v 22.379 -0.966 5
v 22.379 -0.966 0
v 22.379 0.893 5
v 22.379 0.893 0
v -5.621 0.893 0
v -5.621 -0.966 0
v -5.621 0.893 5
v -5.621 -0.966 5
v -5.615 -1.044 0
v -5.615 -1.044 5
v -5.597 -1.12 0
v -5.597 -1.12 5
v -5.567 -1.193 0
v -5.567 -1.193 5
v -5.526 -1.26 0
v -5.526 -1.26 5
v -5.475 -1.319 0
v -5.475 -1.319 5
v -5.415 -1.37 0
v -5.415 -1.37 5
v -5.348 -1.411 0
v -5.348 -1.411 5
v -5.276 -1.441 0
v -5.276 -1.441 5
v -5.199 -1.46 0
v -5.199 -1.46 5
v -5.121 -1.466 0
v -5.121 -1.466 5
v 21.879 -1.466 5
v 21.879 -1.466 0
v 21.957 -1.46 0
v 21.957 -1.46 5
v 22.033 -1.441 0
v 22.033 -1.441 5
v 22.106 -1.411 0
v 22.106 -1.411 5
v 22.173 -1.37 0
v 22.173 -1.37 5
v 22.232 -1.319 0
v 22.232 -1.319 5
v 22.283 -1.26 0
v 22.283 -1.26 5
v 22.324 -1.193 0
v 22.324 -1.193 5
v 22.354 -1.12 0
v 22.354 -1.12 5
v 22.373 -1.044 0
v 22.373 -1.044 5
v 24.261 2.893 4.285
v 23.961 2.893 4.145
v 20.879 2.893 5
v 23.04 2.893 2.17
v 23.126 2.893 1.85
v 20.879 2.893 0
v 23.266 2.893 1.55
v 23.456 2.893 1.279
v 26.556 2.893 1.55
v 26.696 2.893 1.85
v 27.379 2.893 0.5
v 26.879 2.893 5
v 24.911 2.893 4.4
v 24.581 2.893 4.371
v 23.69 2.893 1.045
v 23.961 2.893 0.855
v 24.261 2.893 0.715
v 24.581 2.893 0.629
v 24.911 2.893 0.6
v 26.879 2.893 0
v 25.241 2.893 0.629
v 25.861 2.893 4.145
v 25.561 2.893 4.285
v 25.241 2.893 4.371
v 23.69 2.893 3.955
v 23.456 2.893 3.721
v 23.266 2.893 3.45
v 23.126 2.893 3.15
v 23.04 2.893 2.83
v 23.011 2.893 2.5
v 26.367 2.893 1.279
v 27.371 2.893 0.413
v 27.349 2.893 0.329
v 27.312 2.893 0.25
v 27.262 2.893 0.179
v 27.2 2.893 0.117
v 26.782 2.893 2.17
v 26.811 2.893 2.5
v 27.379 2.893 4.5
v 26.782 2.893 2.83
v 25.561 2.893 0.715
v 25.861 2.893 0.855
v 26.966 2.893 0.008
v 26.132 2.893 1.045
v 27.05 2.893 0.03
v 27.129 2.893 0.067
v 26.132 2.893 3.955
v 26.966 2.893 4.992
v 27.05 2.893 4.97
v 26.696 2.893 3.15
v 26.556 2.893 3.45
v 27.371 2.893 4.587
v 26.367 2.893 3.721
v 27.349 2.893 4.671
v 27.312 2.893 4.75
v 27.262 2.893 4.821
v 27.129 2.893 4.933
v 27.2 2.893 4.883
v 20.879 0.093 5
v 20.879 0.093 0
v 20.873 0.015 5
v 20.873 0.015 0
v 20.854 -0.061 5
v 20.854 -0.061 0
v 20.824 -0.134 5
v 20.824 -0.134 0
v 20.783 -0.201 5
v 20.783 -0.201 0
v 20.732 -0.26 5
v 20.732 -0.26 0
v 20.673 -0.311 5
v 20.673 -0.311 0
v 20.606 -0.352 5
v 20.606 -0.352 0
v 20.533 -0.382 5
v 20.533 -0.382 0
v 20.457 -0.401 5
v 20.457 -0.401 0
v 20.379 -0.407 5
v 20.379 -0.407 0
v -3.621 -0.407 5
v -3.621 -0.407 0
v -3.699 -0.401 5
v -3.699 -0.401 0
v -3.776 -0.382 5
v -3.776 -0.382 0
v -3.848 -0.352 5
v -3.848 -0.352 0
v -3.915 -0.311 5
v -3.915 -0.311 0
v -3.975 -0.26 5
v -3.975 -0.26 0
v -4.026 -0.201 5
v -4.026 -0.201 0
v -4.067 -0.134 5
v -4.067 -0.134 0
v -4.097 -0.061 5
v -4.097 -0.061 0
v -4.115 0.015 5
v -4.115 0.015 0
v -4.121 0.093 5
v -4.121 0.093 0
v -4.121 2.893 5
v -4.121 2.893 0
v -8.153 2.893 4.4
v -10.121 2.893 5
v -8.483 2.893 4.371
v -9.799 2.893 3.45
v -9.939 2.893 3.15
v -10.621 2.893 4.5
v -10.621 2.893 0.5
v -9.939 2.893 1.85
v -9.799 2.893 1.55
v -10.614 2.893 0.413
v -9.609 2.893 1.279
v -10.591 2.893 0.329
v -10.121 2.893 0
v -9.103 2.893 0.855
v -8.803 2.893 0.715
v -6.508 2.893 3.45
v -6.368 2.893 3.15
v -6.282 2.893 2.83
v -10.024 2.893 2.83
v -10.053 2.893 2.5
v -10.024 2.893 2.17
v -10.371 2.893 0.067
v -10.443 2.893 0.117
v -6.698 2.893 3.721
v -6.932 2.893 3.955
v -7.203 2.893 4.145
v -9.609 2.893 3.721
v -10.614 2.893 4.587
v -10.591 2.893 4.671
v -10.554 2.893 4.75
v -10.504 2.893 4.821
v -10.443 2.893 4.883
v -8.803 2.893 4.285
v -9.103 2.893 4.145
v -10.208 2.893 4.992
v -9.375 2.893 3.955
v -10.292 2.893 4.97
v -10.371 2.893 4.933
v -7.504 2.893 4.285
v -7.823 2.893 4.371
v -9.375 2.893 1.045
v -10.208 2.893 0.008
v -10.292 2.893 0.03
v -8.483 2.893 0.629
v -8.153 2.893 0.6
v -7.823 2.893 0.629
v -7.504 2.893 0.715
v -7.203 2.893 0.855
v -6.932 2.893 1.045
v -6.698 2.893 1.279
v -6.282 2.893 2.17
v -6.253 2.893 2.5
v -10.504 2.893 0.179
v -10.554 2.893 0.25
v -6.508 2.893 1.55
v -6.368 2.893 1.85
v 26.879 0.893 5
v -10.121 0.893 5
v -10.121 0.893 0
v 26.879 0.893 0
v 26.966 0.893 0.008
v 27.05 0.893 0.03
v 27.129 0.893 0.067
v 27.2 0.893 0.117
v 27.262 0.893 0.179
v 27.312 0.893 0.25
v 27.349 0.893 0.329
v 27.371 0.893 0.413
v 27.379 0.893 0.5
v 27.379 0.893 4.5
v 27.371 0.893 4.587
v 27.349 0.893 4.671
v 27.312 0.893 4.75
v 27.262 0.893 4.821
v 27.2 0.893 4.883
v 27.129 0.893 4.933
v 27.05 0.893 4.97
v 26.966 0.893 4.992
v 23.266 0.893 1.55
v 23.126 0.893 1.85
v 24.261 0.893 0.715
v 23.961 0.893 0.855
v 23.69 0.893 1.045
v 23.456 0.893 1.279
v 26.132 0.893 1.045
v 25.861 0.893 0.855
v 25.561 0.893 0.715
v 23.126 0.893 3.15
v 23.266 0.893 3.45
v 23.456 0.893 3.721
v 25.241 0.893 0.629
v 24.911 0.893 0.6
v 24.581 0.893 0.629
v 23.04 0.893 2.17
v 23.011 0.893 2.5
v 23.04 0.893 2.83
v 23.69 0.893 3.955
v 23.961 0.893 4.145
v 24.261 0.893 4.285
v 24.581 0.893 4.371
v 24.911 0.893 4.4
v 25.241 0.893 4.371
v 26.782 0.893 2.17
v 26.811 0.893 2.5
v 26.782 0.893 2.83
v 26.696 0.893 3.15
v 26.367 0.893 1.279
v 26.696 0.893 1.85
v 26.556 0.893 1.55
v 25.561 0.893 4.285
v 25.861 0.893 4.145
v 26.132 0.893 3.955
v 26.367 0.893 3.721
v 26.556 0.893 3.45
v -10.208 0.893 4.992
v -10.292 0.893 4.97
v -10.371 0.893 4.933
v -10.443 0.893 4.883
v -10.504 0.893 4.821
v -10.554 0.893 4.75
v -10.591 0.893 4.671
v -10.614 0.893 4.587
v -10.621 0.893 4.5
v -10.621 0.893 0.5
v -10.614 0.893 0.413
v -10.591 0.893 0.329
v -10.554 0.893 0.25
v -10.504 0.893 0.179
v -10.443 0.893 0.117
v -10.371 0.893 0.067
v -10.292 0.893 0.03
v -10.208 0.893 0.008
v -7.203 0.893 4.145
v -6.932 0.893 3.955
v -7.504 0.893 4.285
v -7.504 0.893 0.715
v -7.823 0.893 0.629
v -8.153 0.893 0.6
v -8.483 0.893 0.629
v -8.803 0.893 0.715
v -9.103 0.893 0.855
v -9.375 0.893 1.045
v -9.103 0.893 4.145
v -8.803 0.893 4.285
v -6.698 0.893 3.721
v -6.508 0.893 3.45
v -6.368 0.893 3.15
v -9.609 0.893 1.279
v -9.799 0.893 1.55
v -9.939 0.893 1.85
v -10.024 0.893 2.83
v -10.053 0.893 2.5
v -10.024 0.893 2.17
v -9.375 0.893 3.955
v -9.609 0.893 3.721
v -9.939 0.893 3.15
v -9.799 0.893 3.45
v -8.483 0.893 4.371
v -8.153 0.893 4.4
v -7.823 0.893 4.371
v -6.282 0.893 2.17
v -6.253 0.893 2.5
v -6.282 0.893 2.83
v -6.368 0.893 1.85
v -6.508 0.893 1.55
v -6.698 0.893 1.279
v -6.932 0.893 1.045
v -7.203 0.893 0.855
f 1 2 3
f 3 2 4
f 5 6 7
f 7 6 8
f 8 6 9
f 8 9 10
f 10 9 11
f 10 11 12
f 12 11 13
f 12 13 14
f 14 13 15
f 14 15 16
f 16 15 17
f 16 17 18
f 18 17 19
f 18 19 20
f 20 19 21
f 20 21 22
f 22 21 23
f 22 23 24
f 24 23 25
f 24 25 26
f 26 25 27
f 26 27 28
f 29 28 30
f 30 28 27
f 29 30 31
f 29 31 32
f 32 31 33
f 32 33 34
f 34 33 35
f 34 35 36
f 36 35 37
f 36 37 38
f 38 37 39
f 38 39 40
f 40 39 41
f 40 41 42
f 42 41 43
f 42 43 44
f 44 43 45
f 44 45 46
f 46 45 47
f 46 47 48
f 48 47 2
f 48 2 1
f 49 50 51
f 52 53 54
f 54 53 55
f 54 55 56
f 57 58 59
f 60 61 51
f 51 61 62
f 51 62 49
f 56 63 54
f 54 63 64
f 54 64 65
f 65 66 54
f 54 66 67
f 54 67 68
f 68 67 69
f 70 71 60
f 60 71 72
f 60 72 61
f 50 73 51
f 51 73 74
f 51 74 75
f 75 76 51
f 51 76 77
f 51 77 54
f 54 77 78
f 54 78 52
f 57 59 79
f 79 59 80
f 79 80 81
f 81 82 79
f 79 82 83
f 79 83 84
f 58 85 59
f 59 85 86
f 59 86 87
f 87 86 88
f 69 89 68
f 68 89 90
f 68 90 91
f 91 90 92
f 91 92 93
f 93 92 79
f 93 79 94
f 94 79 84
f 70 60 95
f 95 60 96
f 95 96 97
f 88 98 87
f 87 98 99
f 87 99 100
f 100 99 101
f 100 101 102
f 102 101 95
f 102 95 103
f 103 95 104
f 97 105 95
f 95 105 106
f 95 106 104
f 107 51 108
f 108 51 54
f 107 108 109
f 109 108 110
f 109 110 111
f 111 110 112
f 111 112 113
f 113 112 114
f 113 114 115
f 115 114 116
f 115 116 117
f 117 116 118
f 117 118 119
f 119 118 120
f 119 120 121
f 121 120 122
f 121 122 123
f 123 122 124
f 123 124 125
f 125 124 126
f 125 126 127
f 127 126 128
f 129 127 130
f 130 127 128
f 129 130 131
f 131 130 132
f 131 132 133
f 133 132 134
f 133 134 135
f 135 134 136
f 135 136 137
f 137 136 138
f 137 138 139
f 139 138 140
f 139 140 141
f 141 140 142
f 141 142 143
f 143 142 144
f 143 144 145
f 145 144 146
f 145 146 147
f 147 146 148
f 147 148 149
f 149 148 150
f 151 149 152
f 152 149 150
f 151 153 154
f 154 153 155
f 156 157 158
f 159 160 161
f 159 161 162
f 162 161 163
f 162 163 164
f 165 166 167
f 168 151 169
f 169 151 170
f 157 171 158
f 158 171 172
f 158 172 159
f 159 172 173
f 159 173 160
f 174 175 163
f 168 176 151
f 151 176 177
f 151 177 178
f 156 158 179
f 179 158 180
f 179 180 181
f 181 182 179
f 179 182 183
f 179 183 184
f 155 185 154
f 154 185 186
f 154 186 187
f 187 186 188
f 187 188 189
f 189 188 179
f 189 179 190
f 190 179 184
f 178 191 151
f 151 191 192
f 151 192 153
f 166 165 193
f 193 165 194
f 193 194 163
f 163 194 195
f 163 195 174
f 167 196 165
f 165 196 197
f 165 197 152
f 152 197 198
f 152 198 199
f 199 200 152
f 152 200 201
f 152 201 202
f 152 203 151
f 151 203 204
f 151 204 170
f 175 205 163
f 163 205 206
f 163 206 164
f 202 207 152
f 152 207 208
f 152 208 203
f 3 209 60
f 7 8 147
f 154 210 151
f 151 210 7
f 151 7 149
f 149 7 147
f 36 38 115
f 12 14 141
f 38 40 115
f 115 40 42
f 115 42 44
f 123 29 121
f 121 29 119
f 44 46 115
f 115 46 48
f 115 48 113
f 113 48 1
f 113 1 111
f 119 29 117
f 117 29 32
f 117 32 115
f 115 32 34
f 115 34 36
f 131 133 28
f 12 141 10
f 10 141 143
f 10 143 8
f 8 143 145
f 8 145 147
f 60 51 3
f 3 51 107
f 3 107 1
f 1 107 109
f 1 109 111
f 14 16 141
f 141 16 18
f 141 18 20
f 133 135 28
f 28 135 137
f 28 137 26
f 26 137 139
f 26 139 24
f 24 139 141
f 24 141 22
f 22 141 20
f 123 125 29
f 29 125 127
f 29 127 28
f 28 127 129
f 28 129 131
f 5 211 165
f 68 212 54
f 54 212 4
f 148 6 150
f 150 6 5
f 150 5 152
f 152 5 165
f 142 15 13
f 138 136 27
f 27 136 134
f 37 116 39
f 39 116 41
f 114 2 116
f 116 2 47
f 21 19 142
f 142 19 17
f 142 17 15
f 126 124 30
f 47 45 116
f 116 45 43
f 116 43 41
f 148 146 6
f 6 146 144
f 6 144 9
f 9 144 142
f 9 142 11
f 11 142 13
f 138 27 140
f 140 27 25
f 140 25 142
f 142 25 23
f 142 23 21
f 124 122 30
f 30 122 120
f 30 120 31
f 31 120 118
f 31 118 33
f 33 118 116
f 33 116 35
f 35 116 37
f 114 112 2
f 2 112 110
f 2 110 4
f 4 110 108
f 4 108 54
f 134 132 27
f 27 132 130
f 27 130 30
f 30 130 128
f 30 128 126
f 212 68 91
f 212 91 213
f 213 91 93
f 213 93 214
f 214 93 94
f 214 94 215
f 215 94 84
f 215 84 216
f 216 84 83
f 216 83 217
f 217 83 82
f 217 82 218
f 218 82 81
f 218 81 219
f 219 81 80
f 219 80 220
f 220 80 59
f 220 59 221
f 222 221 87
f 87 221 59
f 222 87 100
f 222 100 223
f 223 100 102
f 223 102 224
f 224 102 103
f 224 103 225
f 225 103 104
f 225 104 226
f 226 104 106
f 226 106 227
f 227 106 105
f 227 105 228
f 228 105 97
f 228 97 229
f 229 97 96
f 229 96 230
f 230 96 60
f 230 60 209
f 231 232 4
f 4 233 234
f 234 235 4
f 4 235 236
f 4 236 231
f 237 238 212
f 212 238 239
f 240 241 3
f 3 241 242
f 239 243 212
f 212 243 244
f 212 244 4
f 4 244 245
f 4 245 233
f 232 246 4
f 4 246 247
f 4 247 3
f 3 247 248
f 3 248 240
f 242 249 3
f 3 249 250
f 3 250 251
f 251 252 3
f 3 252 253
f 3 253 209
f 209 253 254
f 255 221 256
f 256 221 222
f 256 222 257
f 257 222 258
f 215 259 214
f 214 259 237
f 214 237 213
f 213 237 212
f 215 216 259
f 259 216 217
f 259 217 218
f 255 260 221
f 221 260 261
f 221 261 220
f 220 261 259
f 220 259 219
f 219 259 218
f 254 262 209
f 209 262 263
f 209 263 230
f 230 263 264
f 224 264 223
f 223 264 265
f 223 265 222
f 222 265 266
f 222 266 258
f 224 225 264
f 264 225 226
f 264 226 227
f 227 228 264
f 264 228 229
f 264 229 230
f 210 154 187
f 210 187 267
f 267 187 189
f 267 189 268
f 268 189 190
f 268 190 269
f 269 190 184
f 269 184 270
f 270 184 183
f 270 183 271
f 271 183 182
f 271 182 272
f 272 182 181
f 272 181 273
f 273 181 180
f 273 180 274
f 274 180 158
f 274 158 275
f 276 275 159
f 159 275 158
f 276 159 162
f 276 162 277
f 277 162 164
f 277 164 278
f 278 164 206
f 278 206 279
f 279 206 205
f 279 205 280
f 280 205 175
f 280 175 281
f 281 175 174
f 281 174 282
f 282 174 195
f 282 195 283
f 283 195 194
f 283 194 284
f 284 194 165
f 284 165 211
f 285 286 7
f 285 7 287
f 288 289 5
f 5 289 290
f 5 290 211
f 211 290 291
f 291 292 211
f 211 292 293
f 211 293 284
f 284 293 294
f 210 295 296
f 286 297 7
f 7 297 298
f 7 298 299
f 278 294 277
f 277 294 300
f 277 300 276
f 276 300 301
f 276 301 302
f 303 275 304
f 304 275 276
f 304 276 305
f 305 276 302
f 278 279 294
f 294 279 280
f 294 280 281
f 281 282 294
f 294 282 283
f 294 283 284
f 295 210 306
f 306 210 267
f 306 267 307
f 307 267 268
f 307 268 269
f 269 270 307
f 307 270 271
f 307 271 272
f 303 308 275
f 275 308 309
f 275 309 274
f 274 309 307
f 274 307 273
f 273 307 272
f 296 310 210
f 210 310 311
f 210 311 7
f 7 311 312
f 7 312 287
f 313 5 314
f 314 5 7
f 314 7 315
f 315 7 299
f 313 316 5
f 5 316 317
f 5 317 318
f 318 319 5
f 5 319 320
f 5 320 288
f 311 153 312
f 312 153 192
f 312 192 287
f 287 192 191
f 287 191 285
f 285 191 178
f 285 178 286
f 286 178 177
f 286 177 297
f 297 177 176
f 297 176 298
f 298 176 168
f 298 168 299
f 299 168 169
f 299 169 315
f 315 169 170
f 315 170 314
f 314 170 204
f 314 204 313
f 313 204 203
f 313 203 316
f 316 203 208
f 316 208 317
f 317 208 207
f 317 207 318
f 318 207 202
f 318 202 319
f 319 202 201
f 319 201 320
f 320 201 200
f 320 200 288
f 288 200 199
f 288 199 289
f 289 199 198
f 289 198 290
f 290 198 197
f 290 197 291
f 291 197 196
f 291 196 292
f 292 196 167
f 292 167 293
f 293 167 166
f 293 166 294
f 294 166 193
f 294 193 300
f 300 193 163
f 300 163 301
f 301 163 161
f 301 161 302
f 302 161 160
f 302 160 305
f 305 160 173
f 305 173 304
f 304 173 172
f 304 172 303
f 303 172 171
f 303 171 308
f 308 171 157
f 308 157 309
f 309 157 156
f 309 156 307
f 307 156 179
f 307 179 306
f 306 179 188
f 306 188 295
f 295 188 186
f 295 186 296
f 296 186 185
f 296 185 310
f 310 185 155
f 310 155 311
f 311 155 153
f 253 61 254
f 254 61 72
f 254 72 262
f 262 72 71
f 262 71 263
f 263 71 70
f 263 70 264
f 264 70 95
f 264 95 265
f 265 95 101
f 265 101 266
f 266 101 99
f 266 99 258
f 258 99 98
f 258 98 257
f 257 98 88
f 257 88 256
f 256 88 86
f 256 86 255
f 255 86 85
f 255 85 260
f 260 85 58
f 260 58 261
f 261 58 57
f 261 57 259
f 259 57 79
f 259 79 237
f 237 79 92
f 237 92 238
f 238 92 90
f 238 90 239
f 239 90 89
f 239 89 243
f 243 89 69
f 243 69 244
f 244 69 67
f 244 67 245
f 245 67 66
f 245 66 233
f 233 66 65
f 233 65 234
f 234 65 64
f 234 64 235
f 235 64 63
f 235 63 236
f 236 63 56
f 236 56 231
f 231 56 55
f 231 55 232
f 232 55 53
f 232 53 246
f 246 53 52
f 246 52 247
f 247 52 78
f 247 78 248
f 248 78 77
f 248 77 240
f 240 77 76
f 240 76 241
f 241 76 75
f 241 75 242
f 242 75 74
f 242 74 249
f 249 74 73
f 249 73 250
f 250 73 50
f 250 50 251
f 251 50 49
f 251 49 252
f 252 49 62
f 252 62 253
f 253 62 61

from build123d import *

# Parameters (mm, degrees)
BOSS_EXTRU_1_DEPTH      = 5
BOSS_EXTRU_2_DEPTH      = 2
ESQUISSE4_R             = 1.9
ENL_V_MAT_EXTRU_1_DEPTH = 5


with BuildPart() as part:
    # Esquisse2 → Boss.-Extru.1 (new body)
    with BuildSketch(Plane.XY):
        with BuildLine():
            Line((-5.621162791, 2.893255814), (-4.121162791, 2.893255814))
            Line((-4.121162791, 2.893255814), (-4.121162791, 0.093255814))
            ThreePointArc((-4.121162791, 0.093255814), (-3.974716181, -0.260297577), (-3.621162791, -0.406744186))
            Line((-3.621162791, -0.406744186), (20.378837209, -0.406744186))
            ThreePointArc((20.378837209, -0.406744186), (20.7323906, -0.260297577), (20.878837209, 0.093255814))
            Line((20.878837209, 0.093255814), (20.878837209, 2.893255814))
            Line((20.878837209, 2.893255814), (22.378837209, 2.893255814))
            Line((22.378837209, 2.893255814), (22.378837209, -0.965813953))
            ThreePointArc((22.378837209, -0.965813953), (22.2323906, -1.319367344), (21.878837209, -1.465813953))
            Line((21.878837209, -1.465813953), (-5.121162791, -1.465813953))
            ThreePointArc((-5.121162791, -1.465813953), (-5.474716181, -1.319367344), (-5.621162791, -0.965813953))
            Line((-5.621162791, -0.965813953), (-5.621162791, 2.893255814))
        make_face()
    extrude(amount=BOSS_EXTRU_1_DEPTH)

    # Esquisse3 → Boss.-Extru.2 (add)
    with BuildSketch(Plane(origin=(0, 2.893255814, 0), x_dir=(1, 0, 0), z_dir=(0, 1, 0))):
        with BuildLine():
            Line((-5.621162791, 0), (-10.121162791, 0))
            ThreePointArc((-10.121162791, 0), (-10.474716181, -0.146446609), (-10.621162791, -0.5))
            Line((-10.621162791, -0.5), (-10.621162791, -4.5))
            ThreePointArc((-10.621162791, -4.5), (-10.474716181, -4.853553391), (-10.121162791, -5))
            Line((-10.121162791, -5), (-5.621162791, -5))
            Line((-5.621162791, -5), (-5.621162791, 0))
        make_face()
        with BuildLine():
            Line((22.378837209, -5), (26.878837209, -5))
            ThreePointArc((26.878837209, -5), (27.2323906, -4.853553391), (27.378837209, -4.5))
            Line((27.378837209, -4.5), (27.378837209, -0.5))
            ThreePointArc((27.378837209, -0.5), (27.2323906, -0.146446609), (26.878837209, 0))
            Line((26.878837209, 0), (22.378837209, 0))
            Line((22.378837209, 0), (22.378837209, -5))
        make_face()
    extrude(amount=-BOSS_EXTRU_2_DEPTH)

    # Esquisse4 → Enlèv. mat.-Extru.1 (cut)
    with BuildSketch(Plane(origin=(0, 2.893255814, 0), x_dir=(1, 0, 0), z_dir=(0, 1, 0))):
        with Locations(Location((-8.153362247, -2.5, 0), (0, 0, 270))):
            Circle(ESQUISSE4_R)
        with Locations(Location((24.911036665, -2.5, 0), (0, 0, 270))):
            Circle(ESQUISSE4_R)
    extrude(amount=-ENL_V_MAT_EXTRU_1_DEPTH, mode=Mode.SUBTRACT)


solid = part.part
